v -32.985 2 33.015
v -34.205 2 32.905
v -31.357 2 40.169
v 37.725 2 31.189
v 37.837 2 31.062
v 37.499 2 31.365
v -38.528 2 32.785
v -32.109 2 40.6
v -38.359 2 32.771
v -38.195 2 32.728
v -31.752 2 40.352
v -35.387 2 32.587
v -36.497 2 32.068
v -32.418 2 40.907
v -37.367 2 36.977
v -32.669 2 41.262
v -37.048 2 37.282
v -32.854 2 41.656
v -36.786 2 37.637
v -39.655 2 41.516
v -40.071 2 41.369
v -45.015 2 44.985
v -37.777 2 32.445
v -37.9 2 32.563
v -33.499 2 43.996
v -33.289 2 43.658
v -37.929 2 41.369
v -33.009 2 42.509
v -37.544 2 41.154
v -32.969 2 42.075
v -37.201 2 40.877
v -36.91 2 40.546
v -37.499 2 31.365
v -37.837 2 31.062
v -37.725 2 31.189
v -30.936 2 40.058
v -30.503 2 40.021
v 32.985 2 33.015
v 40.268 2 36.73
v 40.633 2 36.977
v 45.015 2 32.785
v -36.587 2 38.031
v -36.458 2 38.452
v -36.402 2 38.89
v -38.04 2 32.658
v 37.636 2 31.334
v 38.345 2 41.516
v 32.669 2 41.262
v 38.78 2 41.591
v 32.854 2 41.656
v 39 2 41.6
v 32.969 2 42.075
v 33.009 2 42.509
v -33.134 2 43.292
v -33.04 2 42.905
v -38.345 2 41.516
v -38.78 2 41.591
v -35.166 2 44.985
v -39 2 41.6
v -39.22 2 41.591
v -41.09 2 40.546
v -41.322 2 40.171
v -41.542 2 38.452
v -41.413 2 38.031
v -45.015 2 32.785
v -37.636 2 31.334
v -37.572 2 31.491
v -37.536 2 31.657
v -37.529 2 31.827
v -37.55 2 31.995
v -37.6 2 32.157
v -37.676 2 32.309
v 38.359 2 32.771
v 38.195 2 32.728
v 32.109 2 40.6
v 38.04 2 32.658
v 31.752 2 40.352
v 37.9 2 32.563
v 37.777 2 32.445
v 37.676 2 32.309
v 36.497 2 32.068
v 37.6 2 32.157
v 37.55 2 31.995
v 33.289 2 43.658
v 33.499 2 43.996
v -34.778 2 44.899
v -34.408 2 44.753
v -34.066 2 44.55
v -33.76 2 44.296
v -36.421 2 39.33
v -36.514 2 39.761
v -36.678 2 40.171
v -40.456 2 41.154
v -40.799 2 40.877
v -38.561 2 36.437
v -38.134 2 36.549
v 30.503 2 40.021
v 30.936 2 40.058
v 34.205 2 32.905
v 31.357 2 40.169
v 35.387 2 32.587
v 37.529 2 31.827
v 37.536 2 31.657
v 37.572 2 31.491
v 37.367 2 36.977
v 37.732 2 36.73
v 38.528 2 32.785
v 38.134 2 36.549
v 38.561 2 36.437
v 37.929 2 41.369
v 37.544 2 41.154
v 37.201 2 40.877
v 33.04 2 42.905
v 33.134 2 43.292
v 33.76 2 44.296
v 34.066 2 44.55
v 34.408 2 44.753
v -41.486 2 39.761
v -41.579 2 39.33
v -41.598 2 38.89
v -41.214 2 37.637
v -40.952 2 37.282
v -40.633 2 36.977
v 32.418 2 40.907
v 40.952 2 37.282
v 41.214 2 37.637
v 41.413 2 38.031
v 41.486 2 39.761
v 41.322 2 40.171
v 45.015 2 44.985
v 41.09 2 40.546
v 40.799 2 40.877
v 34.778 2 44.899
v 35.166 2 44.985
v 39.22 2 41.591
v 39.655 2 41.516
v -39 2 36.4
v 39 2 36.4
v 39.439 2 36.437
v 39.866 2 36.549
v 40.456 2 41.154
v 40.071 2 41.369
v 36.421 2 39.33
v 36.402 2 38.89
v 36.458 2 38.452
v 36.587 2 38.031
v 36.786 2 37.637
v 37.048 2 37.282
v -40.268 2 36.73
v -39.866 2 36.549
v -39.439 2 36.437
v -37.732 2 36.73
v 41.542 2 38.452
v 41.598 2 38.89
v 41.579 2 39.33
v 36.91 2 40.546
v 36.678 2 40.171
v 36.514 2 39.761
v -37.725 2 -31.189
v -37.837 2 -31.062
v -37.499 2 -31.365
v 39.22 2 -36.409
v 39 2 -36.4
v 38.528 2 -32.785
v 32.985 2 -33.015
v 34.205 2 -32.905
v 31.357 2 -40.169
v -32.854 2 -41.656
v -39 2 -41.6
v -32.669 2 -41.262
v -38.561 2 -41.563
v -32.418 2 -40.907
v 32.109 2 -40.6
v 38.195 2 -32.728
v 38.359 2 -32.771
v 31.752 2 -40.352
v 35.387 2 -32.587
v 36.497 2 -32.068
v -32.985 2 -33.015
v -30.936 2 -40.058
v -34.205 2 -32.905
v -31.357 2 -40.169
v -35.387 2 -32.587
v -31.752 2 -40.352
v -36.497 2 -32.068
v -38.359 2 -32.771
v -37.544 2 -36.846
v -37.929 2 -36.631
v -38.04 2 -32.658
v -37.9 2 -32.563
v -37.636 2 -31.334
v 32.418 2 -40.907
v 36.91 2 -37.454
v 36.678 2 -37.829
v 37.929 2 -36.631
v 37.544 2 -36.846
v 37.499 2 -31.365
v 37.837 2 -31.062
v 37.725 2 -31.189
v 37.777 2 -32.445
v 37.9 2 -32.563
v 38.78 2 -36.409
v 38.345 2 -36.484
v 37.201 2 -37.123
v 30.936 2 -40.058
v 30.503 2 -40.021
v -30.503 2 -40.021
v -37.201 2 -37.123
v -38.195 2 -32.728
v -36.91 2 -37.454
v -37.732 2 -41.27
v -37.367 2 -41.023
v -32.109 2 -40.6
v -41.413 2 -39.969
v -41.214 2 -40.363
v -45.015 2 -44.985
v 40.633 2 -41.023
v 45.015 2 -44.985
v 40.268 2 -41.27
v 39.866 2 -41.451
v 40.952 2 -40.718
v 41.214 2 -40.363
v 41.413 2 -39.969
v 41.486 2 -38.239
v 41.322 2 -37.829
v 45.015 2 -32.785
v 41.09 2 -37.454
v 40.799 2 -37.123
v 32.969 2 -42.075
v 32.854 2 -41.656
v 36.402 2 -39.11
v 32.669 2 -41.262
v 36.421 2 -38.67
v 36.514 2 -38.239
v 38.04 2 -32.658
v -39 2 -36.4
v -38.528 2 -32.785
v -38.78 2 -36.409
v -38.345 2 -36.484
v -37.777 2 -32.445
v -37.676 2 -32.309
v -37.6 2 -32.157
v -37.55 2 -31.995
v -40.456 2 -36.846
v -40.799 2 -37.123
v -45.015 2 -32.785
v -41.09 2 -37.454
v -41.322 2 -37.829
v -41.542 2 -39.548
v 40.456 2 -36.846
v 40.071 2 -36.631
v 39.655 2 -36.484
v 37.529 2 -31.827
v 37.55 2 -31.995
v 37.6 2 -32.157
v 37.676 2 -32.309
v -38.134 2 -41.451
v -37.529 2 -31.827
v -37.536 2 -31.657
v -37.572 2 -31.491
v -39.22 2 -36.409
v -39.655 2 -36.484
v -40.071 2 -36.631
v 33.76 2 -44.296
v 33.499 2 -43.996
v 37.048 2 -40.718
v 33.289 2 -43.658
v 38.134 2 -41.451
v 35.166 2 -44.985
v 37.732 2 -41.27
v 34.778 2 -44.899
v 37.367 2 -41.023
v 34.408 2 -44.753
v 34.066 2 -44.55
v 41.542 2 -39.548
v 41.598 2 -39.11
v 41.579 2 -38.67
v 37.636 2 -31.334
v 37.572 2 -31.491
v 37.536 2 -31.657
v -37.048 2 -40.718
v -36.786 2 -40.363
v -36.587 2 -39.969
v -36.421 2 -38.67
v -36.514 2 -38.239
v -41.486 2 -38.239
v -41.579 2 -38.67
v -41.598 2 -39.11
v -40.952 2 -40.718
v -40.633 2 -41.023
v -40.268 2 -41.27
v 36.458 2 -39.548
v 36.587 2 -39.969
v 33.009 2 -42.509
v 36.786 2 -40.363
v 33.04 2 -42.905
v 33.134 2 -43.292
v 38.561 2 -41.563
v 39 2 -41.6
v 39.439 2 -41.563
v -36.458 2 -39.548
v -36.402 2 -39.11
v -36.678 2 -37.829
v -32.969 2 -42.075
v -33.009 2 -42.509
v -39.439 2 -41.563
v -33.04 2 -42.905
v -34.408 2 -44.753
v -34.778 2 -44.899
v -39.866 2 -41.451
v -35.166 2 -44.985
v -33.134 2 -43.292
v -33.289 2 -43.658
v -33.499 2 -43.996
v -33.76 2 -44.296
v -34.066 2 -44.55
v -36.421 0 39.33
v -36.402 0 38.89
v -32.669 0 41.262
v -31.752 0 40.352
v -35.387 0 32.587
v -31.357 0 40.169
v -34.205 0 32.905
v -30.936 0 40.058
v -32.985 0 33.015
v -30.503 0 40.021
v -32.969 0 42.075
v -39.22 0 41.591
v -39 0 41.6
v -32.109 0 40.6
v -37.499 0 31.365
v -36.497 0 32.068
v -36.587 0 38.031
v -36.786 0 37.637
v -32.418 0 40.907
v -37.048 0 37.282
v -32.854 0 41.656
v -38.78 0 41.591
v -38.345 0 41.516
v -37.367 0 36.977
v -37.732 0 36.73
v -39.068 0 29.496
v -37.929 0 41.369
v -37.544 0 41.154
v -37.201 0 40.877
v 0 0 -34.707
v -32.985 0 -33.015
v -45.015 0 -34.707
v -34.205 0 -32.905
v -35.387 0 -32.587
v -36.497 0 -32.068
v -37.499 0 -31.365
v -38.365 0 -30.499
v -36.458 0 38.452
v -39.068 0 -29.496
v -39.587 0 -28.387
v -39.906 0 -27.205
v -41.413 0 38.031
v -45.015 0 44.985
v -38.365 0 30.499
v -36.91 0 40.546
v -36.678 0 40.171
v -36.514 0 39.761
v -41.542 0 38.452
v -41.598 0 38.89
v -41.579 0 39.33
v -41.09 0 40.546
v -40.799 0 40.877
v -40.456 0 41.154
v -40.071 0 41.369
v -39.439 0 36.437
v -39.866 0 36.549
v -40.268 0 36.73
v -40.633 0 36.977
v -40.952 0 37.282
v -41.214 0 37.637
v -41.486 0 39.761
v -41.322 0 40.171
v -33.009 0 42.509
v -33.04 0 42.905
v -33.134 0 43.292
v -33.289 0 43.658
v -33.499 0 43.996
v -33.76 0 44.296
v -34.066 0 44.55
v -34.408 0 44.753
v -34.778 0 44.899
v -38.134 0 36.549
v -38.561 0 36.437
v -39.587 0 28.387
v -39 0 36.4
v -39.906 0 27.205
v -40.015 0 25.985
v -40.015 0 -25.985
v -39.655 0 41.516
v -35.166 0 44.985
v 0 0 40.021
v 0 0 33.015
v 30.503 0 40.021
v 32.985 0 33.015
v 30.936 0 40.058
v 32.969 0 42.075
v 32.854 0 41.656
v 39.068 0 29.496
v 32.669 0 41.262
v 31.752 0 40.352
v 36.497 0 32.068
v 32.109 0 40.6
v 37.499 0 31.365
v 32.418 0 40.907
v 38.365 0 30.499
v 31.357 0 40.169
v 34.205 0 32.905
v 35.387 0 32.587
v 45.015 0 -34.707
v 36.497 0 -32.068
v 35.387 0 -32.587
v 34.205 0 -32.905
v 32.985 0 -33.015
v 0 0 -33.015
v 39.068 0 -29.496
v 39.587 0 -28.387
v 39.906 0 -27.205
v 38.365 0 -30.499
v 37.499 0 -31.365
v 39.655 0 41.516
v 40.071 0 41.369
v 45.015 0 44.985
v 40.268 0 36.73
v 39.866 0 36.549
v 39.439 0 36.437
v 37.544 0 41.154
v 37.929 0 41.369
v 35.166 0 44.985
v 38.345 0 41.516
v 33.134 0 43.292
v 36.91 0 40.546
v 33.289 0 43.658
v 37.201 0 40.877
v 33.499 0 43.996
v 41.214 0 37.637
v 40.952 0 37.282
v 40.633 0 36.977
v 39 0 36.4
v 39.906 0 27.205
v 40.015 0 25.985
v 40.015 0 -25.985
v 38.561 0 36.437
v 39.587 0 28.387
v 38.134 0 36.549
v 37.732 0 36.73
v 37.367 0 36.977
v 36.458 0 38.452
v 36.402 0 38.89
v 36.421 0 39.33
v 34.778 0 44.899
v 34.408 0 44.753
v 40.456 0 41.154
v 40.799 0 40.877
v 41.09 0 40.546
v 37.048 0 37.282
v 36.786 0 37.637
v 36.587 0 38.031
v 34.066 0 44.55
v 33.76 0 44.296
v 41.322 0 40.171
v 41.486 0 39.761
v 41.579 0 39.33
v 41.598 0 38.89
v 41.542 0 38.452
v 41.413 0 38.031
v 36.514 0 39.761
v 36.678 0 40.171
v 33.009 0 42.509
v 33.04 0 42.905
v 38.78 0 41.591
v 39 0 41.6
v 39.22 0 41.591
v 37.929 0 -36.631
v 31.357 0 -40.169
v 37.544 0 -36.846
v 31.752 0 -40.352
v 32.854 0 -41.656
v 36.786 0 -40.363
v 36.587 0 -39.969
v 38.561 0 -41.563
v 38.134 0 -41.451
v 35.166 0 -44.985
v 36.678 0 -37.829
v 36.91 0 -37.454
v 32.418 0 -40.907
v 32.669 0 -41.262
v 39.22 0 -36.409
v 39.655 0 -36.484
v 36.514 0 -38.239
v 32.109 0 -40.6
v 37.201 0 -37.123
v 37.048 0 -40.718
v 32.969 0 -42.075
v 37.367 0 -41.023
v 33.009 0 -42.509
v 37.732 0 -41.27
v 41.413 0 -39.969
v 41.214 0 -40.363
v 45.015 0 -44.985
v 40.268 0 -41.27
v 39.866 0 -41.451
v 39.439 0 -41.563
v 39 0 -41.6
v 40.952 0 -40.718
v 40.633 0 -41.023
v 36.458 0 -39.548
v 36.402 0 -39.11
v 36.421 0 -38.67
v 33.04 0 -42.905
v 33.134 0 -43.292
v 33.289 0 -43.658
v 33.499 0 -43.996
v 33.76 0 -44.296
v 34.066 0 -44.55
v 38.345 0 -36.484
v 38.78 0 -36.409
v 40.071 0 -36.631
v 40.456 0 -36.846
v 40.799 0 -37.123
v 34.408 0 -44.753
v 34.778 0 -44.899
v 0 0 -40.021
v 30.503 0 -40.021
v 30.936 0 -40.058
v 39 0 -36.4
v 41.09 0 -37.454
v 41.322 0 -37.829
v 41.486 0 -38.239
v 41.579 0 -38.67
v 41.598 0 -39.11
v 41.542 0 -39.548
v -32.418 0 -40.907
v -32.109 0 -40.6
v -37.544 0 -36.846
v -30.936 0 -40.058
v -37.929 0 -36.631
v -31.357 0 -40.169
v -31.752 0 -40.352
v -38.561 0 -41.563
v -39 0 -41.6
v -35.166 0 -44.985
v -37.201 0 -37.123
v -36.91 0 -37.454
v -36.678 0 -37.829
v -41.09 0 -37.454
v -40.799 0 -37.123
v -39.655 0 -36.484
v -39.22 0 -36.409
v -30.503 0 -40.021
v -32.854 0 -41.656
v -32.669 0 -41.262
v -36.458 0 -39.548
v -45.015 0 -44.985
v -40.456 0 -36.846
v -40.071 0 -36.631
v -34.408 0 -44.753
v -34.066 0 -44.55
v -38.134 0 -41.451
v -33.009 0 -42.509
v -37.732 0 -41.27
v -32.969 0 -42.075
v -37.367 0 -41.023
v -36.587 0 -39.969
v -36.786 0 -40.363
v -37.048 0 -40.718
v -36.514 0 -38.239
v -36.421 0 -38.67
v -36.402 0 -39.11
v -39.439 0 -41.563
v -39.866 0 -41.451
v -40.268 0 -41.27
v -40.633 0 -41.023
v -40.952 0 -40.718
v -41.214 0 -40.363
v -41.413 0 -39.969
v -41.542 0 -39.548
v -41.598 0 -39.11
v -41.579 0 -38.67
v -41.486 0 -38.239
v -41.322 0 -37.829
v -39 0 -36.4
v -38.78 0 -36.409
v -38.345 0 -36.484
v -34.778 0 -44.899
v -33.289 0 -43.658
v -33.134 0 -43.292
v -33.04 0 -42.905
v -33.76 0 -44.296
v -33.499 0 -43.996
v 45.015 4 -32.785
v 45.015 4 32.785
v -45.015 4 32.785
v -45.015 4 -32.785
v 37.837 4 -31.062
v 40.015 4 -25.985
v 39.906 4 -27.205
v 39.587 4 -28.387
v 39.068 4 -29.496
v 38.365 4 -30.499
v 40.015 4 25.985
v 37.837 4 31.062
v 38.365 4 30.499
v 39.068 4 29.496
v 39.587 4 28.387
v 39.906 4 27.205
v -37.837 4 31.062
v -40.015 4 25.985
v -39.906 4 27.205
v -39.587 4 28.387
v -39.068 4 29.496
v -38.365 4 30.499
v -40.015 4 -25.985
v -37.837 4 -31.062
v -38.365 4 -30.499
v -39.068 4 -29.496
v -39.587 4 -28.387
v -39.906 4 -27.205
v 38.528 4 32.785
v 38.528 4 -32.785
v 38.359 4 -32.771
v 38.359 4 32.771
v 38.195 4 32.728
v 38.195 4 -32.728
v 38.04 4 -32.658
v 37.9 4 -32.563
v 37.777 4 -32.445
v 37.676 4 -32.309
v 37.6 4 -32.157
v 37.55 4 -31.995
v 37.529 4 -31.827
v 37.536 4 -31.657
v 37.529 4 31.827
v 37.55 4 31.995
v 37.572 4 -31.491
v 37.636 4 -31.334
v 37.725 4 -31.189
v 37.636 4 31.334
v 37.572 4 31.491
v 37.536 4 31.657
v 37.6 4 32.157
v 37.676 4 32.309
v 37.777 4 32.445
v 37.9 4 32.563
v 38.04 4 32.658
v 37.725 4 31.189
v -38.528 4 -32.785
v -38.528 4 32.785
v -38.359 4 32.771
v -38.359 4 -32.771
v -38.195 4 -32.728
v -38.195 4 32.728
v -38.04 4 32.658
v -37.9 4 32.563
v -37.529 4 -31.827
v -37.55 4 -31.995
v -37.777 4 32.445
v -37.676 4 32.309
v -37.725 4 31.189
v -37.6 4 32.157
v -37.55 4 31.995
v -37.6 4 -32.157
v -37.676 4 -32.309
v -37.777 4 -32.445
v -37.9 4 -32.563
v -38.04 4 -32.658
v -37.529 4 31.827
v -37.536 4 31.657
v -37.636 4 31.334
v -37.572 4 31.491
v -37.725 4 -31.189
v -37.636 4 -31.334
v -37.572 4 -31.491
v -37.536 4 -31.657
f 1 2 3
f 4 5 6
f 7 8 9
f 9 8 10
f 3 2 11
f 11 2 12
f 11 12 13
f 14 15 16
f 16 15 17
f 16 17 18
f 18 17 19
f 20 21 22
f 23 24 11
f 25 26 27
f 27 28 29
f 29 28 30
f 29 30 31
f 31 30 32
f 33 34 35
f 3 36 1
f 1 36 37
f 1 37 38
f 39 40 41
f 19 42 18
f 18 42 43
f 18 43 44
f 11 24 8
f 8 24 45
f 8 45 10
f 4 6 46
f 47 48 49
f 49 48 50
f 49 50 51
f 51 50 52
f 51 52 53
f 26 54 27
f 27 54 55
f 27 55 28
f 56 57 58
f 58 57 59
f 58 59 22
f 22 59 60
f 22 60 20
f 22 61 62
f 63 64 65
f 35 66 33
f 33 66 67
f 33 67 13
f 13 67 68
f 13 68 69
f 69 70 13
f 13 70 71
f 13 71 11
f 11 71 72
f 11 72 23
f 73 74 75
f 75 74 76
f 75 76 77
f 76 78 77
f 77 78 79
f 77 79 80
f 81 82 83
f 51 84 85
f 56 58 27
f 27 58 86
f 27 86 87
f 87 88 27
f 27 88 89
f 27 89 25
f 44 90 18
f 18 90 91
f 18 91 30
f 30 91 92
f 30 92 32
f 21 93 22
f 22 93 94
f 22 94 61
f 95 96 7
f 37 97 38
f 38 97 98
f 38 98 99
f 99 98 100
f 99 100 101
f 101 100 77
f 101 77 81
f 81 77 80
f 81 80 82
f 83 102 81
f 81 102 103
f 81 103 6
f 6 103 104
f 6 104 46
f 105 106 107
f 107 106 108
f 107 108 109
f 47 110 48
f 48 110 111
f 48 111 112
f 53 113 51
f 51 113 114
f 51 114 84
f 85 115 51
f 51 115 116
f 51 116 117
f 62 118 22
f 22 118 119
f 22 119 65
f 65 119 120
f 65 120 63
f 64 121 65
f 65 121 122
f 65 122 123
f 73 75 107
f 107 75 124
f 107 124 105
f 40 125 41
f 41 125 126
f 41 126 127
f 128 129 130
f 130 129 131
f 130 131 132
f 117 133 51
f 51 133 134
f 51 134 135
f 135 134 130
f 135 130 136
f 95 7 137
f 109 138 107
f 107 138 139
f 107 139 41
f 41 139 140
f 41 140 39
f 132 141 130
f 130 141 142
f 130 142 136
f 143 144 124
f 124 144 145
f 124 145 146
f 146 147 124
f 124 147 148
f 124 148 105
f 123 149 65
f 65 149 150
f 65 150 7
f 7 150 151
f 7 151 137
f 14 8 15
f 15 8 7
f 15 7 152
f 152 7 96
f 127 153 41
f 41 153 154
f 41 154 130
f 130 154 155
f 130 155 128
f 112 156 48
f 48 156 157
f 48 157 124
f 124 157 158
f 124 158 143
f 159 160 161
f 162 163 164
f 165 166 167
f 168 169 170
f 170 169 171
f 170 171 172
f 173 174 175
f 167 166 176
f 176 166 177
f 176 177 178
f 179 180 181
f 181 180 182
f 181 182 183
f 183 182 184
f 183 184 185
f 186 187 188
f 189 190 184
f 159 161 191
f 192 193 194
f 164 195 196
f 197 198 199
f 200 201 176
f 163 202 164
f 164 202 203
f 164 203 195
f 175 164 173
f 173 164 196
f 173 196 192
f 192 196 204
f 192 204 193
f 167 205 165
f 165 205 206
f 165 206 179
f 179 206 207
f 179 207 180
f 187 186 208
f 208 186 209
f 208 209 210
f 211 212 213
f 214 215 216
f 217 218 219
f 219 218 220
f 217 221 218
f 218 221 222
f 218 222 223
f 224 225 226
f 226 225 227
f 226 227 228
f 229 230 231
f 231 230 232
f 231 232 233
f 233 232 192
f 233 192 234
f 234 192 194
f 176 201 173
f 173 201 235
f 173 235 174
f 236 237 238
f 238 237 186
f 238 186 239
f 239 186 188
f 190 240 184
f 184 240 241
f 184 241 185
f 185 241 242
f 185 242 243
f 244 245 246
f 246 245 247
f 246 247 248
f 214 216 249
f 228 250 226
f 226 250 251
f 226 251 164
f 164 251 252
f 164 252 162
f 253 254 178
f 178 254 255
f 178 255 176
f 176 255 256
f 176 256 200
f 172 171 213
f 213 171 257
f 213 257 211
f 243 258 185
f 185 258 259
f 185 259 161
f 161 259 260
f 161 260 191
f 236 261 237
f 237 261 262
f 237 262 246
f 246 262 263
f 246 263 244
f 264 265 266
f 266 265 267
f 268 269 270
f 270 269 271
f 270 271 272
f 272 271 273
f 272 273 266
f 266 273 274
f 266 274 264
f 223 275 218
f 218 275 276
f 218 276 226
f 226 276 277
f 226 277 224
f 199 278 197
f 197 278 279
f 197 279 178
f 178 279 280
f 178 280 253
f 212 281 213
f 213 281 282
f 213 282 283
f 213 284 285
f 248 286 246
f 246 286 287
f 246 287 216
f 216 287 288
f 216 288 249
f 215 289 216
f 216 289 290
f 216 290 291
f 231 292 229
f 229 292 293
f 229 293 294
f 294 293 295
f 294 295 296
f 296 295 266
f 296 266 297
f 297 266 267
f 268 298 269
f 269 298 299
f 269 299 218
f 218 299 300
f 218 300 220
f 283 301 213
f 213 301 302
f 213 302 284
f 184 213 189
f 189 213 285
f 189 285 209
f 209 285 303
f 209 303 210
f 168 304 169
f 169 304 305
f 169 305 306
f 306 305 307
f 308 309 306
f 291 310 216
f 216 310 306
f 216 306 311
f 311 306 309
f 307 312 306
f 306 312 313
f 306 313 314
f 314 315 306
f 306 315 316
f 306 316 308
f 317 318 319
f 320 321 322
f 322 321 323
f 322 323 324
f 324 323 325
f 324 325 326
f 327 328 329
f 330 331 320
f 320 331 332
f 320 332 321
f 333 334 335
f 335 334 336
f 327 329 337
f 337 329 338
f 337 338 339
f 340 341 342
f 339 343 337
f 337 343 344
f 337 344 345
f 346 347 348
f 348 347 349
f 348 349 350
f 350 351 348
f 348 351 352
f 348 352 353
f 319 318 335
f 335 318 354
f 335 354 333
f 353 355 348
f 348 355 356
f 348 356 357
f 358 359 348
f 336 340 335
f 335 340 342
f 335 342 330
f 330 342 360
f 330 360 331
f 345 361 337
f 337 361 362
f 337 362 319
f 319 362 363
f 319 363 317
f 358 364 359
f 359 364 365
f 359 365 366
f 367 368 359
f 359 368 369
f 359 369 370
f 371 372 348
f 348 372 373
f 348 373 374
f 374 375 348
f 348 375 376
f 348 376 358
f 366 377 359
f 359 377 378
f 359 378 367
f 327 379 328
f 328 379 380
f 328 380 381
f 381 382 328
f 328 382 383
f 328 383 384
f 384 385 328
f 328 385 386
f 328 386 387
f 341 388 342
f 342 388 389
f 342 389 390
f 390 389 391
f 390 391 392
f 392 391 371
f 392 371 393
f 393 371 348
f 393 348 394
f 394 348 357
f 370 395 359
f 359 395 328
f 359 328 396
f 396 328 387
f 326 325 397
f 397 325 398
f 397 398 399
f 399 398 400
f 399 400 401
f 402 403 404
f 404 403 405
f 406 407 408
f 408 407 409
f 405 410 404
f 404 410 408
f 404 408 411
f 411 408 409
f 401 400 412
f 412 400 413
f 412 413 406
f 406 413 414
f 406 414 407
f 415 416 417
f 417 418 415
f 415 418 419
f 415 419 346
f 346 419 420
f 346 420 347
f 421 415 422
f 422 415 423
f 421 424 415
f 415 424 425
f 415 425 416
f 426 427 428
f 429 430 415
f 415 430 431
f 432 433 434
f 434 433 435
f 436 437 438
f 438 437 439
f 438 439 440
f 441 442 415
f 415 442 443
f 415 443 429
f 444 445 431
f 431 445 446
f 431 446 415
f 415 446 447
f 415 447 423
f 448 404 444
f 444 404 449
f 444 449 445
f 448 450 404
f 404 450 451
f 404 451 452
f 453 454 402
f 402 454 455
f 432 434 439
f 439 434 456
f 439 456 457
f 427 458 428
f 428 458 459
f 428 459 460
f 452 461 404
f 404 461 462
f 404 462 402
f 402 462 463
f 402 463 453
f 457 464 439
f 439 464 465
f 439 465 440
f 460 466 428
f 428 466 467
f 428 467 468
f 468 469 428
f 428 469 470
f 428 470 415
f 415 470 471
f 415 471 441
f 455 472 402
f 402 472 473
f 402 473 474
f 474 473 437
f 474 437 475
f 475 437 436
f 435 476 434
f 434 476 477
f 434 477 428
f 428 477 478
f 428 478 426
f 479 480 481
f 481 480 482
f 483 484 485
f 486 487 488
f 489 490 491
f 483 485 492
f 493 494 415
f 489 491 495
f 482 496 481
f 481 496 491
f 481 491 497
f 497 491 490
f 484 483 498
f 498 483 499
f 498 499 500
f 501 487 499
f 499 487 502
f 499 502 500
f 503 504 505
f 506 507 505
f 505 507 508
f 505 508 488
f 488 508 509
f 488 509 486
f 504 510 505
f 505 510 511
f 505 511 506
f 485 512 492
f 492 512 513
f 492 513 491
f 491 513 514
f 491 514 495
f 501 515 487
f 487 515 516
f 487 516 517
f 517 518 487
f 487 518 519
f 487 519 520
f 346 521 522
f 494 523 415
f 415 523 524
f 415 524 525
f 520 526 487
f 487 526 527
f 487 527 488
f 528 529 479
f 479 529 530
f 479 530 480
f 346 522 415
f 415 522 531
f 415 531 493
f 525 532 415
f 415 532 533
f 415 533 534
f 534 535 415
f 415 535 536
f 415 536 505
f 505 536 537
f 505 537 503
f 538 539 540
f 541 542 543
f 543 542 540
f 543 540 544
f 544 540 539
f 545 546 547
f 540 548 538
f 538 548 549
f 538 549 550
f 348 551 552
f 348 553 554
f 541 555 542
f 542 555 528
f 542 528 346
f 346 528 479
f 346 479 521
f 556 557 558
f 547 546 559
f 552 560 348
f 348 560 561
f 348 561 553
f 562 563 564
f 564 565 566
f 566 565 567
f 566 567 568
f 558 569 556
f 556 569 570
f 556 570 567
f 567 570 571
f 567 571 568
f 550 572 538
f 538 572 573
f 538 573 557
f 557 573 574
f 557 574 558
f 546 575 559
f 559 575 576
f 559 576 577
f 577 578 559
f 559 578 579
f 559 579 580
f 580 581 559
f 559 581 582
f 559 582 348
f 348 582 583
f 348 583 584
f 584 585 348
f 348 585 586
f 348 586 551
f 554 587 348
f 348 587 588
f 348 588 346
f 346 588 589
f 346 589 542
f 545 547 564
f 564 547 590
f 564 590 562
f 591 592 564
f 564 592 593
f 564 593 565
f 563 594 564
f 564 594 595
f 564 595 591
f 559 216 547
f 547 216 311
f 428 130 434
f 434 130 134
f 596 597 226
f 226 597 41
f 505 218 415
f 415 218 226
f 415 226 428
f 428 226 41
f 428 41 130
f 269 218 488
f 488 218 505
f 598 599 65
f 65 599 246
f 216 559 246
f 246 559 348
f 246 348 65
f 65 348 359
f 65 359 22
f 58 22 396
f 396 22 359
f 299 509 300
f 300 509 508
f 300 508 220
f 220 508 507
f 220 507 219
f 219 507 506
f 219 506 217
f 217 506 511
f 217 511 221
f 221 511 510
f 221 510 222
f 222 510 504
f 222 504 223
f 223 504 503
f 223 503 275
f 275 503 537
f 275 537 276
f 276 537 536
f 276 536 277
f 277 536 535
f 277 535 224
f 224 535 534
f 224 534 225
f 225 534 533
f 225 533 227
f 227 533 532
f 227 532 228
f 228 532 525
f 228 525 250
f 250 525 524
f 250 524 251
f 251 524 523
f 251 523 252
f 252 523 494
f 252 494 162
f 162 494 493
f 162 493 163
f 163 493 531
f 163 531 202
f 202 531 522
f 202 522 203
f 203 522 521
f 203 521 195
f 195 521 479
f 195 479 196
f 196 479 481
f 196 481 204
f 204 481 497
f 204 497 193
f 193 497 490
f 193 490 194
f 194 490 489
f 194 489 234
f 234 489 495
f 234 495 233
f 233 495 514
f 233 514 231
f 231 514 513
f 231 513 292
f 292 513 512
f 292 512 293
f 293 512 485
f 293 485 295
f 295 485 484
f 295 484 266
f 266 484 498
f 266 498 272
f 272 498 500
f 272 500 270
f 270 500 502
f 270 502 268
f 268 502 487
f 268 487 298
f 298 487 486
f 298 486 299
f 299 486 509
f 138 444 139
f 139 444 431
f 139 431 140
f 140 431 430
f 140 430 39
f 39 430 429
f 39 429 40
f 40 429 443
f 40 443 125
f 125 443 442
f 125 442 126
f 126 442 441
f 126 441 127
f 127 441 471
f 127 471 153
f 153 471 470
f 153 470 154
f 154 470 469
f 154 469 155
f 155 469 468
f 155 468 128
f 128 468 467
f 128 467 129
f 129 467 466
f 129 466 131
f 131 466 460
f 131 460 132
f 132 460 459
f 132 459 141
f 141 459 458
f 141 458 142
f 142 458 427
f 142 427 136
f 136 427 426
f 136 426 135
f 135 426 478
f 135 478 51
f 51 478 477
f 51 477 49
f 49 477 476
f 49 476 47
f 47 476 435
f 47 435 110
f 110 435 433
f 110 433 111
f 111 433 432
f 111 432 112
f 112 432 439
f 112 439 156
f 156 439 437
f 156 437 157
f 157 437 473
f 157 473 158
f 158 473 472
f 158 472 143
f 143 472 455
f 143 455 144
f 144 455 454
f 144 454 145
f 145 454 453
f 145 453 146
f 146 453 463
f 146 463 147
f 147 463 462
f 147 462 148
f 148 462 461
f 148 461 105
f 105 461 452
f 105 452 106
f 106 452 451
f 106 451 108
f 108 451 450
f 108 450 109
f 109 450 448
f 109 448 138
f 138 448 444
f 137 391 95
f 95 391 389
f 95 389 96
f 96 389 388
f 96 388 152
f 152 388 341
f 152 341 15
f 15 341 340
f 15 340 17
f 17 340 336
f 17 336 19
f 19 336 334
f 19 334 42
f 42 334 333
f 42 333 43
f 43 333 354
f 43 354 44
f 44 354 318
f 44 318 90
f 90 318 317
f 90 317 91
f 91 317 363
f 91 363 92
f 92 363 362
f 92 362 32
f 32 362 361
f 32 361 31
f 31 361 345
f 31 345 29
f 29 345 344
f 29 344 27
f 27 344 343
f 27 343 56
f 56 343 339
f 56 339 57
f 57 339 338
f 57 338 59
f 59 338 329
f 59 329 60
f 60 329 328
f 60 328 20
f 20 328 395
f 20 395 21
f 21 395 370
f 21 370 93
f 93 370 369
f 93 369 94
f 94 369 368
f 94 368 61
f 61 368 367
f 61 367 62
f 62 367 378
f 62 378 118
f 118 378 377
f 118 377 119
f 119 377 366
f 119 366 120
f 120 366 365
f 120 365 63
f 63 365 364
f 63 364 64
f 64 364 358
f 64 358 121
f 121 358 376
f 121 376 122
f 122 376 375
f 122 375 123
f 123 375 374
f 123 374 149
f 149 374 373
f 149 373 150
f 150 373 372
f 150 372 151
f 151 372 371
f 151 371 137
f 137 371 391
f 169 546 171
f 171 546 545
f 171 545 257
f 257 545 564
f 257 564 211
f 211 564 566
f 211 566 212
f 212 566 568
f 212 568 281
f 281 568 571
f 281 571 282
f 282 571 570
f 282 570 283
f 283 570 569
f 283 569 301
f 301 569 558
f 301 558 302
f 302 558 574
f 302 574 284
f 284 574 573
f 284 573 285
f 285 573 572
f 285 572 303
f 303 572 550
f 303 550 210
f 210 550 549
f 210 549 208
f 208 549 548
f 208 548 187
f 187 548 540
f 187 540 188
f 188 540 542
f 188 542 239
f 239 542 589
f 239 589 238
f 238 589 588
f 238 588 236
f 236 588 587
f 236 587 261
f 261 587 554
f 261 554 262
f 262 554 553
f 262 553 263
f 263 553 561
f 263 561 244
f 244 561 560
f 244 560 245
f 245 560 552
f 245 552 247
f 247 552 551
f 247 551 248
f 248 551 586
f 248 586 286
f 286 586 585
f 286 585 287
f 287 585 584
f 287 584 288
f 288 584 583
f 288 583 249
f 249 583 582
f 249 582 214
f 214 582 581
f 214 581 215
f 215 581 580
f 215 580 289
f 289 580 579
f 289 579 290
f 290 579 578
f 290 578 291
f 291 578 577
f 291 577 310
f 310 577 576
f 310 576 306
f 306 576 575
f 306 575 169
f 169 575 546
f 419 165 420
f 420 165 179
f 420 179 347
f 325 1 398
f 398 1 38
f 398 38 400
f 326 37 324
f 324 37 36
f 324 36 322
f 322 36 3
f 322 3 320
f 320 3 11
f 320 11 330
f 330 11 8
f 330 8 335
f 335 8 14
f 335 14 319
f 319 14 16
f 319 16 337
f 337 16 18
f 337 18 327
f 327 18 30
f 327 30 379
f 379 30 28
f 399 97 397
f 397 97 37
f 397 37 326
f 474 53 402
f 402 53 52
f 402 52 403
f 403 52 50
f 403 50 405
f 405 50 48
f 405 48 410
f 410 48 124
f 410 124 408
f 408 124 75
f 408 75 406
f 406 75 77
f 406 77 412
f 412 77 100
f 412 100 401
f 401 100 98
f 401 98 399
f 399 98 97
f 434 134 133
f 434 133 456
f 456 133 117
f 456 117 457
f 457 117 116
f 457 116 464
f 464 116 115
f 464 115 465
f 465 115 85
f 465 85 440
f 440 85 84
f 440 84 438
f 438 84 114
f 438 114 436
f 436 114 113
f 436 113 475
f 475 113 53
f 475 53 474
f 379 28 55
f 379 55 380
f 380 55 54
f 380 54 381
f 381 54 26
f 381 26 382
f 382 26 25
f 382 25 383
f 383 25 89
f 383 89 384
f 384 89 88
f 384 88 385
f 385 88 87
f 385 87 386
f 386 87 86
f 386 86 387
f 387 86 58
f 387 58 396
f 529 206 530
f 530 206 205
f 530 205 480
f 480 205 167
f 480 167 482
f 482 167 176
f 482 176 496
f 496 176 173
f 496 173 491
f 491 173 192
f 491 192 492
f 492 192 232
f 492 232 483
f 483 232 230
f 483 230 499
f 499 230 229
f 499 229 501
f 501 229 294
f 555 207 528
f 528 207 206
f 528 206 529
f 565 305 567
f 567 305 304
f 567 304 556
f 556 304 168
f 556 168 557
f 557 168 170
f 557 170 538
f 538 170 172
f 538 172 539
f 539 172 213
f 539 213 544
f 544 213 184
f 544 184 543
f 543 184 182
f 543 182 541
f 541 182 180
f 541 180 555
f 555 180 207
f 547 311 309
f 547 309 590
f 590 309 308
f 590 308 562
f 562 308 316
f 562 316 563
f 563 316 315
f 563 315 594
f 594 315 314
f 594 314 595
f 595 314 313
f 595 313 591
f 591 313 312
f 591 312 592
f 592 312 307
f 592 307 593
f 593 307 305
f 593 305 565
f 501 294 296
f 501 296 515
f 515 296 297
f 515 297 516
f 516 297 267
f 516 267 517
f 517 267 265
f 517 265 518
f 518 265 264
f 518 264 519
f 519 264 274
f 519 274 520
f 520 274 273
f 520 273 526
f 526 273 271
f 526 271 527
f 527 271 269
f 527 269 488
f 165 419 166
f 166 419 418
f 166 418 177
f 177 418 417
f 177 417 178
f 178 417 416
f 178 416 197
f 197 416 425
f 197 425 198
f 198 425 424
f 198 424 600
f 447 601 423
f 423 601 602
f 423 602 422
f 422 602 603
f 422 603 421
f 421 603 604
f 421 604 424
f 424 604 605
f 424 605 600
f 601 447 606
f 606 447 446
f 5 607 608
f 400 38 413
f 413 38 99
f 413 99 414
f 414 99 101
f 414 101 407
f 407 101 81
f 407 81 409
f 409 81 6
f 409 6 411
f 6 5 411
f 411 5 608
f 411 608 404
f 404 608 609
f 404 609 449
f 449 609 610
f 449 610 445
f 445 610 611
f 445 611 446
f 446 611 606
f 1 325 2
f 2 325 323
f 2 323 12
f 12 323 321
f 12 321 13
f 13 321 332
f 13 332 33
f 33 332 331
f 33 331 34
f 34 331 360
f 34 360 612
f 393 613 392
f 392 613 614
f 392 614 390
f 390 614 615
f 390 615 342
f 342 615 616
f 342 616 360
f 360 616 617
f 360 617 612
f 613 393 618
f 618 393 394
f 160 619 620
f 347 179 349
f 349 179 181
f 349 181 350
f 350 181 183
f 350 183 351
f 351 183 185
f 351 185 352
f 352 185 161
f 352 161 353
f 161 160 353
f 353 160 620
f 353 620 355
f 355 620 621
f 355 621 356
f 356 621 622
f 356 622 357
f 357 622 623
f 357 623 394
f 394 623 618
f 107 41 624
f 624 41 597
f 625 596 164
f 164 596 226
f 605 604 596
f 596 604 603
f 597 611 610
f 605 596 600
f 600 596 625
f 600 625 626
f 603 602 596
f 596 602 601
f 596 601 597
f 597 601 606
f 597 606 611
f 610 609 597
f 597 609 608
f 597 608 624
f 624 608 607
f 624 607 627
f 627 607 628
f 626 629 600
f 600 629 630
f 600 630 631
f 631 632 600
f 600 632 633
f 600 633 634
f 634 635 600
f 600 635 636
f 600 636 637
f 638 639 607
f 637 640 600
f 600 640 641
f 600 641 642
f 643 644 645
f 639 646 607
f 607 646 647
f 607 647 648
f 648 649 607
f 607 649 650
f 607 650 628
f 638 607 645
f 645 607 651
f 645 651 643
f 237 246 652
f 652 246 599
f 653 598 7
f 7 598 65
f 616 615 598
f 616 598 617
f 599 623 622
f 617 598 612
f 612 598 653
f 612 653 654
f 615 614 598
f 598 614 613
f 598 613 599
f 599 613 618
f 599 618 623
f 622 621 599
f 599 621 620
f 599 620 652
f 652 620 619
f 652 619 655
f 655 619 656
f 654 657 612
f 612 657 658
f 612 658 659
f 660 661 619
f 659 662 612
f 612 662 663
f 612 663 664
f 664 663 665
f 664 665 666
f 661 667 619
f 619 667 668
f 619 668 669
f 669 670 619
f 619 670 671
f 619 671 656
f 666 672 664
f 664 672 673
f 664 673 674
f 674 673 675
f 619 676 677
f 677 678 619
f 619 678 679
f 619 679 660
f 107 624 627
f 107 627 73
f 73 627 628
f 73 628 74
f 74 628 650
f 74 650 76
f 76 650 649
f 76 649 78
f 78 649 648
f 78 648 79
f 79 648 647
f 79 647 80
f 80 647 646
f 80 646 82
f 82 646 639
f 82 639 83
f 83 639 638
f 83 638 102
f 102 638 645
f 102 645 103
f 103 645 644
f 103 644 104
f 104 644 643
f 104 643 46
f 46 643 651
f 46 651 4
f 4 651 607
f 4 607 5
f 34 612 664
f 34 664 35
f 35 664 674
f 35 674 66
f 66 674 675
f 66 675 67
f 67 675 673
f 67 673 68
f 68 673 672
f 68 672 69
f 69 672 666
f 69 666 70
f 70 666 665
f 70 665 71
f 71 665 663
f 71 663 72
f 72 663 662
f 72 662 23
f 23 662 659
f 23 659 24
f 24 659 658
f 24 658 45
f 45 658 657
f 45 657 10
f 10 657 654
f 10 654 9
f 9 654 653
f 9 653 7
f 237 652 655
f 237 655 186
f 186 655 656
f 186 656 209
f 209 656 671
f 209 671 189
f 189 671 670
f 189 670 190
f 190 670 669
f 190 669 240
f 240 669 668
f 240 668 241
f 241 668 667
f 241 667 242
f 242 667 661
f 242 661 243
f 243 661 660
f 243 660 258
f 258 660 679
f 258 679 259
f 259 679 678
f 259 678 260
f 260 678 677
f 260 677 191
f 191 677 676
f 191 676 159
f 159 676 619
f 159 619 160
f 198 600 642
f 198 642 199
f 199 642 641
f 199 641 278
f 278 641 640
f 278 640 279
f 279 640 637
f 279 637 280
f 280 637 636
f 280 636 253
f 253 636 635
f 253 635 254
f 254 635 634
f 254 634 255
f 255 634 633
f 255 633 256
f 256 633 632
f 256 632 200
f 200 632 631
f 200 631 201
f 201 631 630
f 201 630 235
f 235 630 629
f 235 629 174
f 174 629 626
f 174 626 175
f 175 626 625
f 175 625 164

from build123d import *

# Parameters (mm, degrees)
SKETCH_1_W          = 90.03018306390481
SKETCH_1_H          = 89.97022234109225
SKETCH_1_R          = 2.599999999999996
SKETCH_1_W_2        = 65.97077516555349
SKETCH_1_H_2        = 66.02977765890743
EXTRUDE_1_DEPTH     = 2
CUT_EXTRUDE_1_DEPTH = 64.67117630966501
CUT_EXTRUDE_2_DEPTH = 64.67117630966501
EXTRUDE_START       = 2
EXTRUDE_2_DEPTH     = 2
FILLET_1_R          = 1


with BuildPart() as part:
    # 草图1 → 凸台-拉伸1 (new body)
    with BuildSketch(Plane(origin=(0, 0, 0), x_dir=(1, 0, 0), z_dir=(0, 1, 0))):
        Rectangle(SKETCH_1_W, SKETCH_1_H)
        with Locations(Location((39.00000000000001, 38.99999999999999, 0), (0, 0, 270))):
            Circle(SKETCH_1_R, mode=Mode.SUBTRACT)
        with Locations(Location((39.000000000000014, -39.00000000000001, 0), (0, 0, 270))):
            Circle(SKETCH_1_R, mode=Mode.SUBTRACT)
        with Locations(Location((-38.99999999999998, -39.00000000000001, 0), (0, 0, 270))):
            Circle(SKETCH_1_R, mode=Mode.SUBTRACT)
        with Locations(Location((-38.99999999999999, 38.99999999999999, 0), (0, 0, 270))):
            Circle(SKETCH_1_R, mode=Mode.SUBTRACT)
        Rectangle(SKETCH_1_W_2, SKETCH_1_H_2, mode=Mode.SUBTRACT)
    extrude(amount=EXTRUDE_1_DEPTH)

    # 草图3 → 切除-拉伸1 (cut, through all)
    with BuildSketch(Plane(origin=(0, 2, 0), x_dir=(1, 0, 0), z_dir=(0, 1, 0))):
        with BuildLine():
            Line((35.16632906527342, 44.985111170546105), (-35.16632906527342, 44.985111170546126))
            ThreePointArc((-35.16632906527342, 44.98511117054611), (-33.623759393307296, 44.150934913211564), (-33.00868514907322, 42.50866365204603))
            ThreePointArc((-33.00868514907322, 42.50866365204603), (-32.2698933068484, 40.74672362699537), (-30.502504505895168, 40.02106333162392))
            Line((-30.502504505895168, 40.02106333162392), (30.502504505895196, 40.0210633316239))
            ThreePointArc((30.502504505895196, 40.0210633316239), (32.269893306848424, 40.74672362699535), (33.00868514907325, 42.50866365204601))
            ThreePointArc((33.00868514907325, 42.50866365204601), (33.62375939330732, 44.150934913211536), (35.16632906527342, 44.98511117054609))
        make_face()
        with BuildLine():
            Line((30.502504505895207, -40.0210633316239), (-30.502504505895114, -40.02106333162392))
            ThreePointArc((-30.502504505895114, -40.02106333162392), (-32.269893306848346, -40.74672362699537), (-33.008685149073166, -42.50866365204603))
            ThreePointArc((-33.008685149073166, -42.50866365204603), (-33.62375939330724, -44.150934913211564), (-35.166329065273366, -44.98511117054611))
            Line((-35.166329065273366, -44.985111170546126), (35.16632906527344, -44.985111170546105))
            ThreePointArc((35.16632906527343, -44.98511117054609), (33.623759393307324, -44.150934913211536), (33.00868514907326, -42.50866365204601))
            ThreePointArc((33.00868514907326, -42.50866365204601), (32.26989330684843, -40.74672362699535), (30.502504505895203, -40.0210633316239))
        make_face()
    extrude(amount=-CUT_EXTRUDE_1_DEPTH, mode=Mode.SUBTRACT)

    # 草图4 → 切除-拉伸2 (cut, through all)
    with BuildSketch(Plane(origin=(0, 2, 0), x_dir=(1, 0, 0), z_dir=(0, 1, 0))):
        with BuildLine():
            Line((-32.985387582776745, -33.01488882945372), (-32.985387582776724, 33.01488882945372))
            ThreePointArc((-32.985387582776724, 33.01488882945372), (-37.9510386162303, 30.950835913733954), (-40.0150915319524, 25.985184880281345))
            Line((-40.01509153195237, 25.985184880281345), (-40.01509153195237, 25.95025335742635))
            Line((-40.01509153195237, 25.95025335742635), (-40.0150915319524, -25.95025335742637))
            Line((-40.0150915319524, -25.95025335742637), (-40.0150915319524, -25.985184880281345))
            ThreePointArc((-40.015091531952386, -25.985184880281345), (-37.95103861623032, -30.950835913733957), (-32.985387582776745, -33.01488882945372))
        make_face()
        with BuildLine():
            Line((40.01509153195237, 25.950253357426362), (40.01509153195237, 25.985184880281345))
            ThreePointArc((40.0150915319524, 25.985184880281345), (37.9510386162303, 30.95083591373395), (32.985387582776724, 33.01488882945372))
            Line((32.985387582776724, 33.01488882945372), (32.985387582776745, -33.01488882945372))
            ThreePointArc((32.985387582776745, -33.01488882945372), (37.95103861623032, -30.950835913733957), (40.0150915319524, -25.985184880281345))
            Line((40.0150915319524, -25.985184880281345), (40.0150915319524, -25.950253357426362))
            Line((40.0150915319524, -25.950253357426362), (40.01509153195237, 25.950253357426362))
        make_face()
    extrude(amount=-CUT_EXTRUDE_2_DEPTH, mode=Mode.SUBTRACT)

    # 草图5 → 凸台-拉伸2 (add)
    with BuildSketch(Plane(origin=(0, 2, 0), x_dir=(1, 0, 0), z_dir=(0, 1, 0)).offset(EXTRUDE_START)):
        with BuildLine():
            Line((45.015091531952415, -32.78514802541212), (45.015091531952415, 32.78514802541212))
            Line((45.015091531952415, 32.78514802541212), (34.75273808271875, 32.78514802541212))
            ThreePointArc((34.75273808271875, 32.78514802541213), (38.54114967835172, 30.28072702943986), (40.01509153195237, 25.985184880281345))
            Line((40.01509153195237, 25.985184880281345), (40.0150915319524, -25.985184880281345))
            ThreePointArc((40.0150915319524, -25.985184880281345), (38.54114967835175, -30.280727029439863), (34.75273808271877, -32.78514802541212))
            Line((34.75273808271877, -32.78514802541212), (45.015091531952415, -32.78514802541212))
        make_face()
        with BuildLine():
            Line((-45.01509153195241, 32.78514802541209), (-45.01509153195241, -32.78514802541212))
            Line((-45.0150915319524, -32.78514802541212), (-34.75273808271877, -32.78514802541212))
            ThreePointArc((-34.75273808271877, -32.78514802541212), (-38.54114967835175, -30.280727029439863), (-40.0150915319524, -25.985184880281345))
            Line((-40.0150915319524, -25.985184880281345), (-40.01509153195237, 25.985184880281345))
            ThreePointArc((-40.01509153195237, 25.985184880281345), (-38.54114967835173, 30.280727029439863), (-34.75273808271875, 32.78514802541213))
            Line((-34.75273808271875, 32.78514802541212), (-45.01509153195241, 32.78514802541209))
        make_face()
    extrude(amount=-EXTRUDE_2_DEPTH)

    # 圆角1
    fillet_1_edges = [part.edges().sort_by_distance(p)[0] for p in [
        (34.75273808271877, 3, 32.78514802541213),
        (34.75273808271875, 3, -32.78514802541213),
        (-34.75273808271875, 3, -32.78514802541213),
        (-34.75273808271877, 3, 32.78514802541212),
    ]]
    fillet(fillet_1_edges, radius=FILLET_1_R)


solid = part.part
